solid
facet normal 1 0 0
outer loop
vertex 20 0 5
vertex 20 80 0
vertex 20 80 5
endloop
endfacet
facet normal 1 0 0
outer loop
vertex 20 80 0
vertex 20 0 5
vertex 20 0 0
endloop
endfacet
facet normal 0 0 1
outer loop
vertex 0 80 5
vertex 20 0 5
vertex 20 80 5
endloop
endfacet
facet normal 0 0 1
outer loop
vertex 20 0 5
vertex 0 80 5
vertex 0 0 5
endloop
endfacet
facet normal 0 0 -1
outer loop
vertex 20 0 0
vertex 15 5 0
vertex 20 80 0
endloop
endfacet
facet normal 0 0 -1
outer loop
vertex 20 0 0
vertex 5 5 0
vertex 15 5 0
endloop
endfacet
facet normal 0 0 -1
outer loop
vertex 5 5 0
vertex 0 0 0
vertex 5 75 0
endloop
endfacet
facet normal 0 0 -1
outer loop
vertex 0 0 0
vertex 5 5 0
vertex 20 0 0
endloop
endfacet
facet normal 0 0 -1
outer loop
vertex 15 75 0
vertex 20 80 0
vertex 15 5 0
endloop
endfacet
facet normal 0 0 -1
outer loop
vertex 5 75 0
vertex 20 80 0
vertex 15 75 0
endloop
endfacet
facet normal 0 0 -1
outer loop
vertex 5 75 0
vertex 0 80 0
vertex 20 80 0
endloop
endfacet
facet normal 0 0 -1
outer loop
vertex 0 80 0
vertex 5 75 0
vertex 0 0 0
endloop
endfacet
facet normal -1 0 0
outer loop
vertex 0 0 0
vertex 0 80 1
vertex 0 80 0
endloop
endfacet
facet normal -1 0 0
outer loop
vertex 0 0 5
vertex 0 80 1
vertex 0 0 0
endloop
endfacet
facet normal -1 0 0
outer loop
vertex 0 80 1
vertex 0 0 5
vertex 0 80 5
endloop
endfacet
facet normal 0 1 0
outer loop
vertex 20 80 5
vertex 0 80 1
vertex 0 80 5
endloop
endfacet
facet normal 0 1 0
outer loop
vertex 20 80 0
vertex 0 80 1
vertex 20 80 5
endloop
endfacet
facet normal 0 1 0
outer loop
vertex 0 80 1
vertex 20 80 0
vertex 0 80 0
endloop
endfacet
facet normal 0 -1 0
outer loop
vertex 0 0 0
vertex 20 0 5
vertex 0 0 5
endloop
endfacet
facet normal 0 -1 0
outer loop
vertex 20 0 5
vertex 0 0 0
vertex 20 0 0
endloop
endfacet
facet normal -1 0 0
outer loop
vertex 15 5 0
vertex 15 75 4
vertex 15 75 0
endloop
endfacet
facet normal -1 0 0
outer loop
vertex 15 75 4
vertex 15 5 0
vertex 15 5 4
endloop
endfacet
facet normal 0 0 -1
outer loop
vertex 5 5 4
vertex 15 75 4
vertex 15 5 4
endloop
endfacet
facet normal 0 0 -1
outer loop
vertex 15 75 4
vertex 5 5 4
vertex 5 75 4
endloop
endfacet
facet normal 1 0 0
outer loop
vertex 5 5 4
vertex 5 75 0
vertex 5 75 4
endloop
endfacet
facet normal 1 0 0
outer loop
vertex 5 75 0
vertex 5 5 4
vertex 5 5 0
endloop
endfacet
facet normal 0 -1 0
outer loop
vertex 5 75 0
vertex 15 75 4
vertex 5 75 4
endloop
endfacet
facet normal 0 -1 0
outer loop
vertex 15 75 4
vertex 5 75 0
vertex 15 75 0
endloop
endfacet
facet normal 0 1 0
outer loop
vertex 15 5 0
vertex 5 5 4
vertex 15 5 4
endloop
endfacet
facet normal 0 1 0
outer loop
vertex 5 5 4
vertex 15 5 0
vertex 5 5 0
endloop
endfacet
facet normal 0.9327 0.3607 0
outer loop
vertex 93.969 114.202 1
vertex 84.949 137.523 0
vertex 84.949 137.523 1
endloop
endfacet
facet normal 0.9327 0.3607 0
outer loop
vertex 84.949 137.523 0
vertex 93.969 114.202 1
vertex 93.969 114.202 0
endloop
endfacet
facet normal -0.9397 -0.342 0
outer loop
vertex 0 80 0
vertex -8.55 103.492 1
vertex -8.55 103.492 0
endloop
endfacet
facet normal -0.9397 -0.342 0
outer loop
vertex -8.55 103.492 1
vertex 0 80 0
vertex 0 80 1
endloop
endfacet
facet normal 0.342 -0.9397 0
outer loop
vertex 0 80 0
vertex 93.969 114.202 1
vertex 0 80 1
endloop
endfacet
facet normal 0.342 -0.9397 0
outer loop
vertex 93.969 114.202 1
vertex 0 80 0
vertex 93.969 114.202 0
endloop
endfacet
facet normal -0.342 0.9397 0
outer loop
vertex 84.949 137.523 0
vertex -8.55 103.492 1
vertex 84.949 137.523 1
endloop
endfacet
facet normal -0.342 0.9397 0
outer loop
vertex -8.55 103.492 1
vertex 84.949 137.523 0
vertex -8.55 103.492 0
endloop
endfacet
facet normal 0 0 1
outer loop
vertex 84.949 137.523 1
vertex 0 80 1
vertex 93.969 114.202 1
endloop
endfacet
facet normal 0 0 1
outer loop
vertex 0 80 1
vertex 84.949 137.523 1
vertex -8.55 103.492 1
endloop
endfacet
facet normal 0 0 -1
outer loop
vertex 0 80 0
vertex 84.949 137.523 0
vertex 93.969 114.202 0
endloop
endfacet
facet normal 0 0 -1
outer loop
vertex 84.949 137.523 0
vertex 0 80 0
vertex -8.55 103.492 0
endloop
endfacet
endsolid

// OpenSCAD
// Knife Parameters
handle_length = 80;
handle_width = 20;
handle_thickness = 5;
blade_length = 100;
blade_width = 25;
blade_thickness = 1;
blade_angle = 20; // Angle of the blade relative to the blade width

// Handle
module handle() {
  difference() {
    cube([handle_width, handle_length, handle_thickness]);
    translate([5, 5, 0])
      cube([handle_width - 10, handle_length - 10, handle_thickness - 1]);
  }
}

// Blade
module blade() {
  rotate([0, 0, blade_angle]) {
    linear_extrude(height = blade_thickness)
      polygon([
        [0, 0],
        [blade_length, 0],
        [blade_length - 0.5, blade_width],
        [0, blade_width]
      ]);
  }
}

// Combine Handle and Blade
union() {
  translate([0, 0, 0]) {
    handle();
    translate([0, handle_length, 0]) {
      blade();
    }
  }
}
